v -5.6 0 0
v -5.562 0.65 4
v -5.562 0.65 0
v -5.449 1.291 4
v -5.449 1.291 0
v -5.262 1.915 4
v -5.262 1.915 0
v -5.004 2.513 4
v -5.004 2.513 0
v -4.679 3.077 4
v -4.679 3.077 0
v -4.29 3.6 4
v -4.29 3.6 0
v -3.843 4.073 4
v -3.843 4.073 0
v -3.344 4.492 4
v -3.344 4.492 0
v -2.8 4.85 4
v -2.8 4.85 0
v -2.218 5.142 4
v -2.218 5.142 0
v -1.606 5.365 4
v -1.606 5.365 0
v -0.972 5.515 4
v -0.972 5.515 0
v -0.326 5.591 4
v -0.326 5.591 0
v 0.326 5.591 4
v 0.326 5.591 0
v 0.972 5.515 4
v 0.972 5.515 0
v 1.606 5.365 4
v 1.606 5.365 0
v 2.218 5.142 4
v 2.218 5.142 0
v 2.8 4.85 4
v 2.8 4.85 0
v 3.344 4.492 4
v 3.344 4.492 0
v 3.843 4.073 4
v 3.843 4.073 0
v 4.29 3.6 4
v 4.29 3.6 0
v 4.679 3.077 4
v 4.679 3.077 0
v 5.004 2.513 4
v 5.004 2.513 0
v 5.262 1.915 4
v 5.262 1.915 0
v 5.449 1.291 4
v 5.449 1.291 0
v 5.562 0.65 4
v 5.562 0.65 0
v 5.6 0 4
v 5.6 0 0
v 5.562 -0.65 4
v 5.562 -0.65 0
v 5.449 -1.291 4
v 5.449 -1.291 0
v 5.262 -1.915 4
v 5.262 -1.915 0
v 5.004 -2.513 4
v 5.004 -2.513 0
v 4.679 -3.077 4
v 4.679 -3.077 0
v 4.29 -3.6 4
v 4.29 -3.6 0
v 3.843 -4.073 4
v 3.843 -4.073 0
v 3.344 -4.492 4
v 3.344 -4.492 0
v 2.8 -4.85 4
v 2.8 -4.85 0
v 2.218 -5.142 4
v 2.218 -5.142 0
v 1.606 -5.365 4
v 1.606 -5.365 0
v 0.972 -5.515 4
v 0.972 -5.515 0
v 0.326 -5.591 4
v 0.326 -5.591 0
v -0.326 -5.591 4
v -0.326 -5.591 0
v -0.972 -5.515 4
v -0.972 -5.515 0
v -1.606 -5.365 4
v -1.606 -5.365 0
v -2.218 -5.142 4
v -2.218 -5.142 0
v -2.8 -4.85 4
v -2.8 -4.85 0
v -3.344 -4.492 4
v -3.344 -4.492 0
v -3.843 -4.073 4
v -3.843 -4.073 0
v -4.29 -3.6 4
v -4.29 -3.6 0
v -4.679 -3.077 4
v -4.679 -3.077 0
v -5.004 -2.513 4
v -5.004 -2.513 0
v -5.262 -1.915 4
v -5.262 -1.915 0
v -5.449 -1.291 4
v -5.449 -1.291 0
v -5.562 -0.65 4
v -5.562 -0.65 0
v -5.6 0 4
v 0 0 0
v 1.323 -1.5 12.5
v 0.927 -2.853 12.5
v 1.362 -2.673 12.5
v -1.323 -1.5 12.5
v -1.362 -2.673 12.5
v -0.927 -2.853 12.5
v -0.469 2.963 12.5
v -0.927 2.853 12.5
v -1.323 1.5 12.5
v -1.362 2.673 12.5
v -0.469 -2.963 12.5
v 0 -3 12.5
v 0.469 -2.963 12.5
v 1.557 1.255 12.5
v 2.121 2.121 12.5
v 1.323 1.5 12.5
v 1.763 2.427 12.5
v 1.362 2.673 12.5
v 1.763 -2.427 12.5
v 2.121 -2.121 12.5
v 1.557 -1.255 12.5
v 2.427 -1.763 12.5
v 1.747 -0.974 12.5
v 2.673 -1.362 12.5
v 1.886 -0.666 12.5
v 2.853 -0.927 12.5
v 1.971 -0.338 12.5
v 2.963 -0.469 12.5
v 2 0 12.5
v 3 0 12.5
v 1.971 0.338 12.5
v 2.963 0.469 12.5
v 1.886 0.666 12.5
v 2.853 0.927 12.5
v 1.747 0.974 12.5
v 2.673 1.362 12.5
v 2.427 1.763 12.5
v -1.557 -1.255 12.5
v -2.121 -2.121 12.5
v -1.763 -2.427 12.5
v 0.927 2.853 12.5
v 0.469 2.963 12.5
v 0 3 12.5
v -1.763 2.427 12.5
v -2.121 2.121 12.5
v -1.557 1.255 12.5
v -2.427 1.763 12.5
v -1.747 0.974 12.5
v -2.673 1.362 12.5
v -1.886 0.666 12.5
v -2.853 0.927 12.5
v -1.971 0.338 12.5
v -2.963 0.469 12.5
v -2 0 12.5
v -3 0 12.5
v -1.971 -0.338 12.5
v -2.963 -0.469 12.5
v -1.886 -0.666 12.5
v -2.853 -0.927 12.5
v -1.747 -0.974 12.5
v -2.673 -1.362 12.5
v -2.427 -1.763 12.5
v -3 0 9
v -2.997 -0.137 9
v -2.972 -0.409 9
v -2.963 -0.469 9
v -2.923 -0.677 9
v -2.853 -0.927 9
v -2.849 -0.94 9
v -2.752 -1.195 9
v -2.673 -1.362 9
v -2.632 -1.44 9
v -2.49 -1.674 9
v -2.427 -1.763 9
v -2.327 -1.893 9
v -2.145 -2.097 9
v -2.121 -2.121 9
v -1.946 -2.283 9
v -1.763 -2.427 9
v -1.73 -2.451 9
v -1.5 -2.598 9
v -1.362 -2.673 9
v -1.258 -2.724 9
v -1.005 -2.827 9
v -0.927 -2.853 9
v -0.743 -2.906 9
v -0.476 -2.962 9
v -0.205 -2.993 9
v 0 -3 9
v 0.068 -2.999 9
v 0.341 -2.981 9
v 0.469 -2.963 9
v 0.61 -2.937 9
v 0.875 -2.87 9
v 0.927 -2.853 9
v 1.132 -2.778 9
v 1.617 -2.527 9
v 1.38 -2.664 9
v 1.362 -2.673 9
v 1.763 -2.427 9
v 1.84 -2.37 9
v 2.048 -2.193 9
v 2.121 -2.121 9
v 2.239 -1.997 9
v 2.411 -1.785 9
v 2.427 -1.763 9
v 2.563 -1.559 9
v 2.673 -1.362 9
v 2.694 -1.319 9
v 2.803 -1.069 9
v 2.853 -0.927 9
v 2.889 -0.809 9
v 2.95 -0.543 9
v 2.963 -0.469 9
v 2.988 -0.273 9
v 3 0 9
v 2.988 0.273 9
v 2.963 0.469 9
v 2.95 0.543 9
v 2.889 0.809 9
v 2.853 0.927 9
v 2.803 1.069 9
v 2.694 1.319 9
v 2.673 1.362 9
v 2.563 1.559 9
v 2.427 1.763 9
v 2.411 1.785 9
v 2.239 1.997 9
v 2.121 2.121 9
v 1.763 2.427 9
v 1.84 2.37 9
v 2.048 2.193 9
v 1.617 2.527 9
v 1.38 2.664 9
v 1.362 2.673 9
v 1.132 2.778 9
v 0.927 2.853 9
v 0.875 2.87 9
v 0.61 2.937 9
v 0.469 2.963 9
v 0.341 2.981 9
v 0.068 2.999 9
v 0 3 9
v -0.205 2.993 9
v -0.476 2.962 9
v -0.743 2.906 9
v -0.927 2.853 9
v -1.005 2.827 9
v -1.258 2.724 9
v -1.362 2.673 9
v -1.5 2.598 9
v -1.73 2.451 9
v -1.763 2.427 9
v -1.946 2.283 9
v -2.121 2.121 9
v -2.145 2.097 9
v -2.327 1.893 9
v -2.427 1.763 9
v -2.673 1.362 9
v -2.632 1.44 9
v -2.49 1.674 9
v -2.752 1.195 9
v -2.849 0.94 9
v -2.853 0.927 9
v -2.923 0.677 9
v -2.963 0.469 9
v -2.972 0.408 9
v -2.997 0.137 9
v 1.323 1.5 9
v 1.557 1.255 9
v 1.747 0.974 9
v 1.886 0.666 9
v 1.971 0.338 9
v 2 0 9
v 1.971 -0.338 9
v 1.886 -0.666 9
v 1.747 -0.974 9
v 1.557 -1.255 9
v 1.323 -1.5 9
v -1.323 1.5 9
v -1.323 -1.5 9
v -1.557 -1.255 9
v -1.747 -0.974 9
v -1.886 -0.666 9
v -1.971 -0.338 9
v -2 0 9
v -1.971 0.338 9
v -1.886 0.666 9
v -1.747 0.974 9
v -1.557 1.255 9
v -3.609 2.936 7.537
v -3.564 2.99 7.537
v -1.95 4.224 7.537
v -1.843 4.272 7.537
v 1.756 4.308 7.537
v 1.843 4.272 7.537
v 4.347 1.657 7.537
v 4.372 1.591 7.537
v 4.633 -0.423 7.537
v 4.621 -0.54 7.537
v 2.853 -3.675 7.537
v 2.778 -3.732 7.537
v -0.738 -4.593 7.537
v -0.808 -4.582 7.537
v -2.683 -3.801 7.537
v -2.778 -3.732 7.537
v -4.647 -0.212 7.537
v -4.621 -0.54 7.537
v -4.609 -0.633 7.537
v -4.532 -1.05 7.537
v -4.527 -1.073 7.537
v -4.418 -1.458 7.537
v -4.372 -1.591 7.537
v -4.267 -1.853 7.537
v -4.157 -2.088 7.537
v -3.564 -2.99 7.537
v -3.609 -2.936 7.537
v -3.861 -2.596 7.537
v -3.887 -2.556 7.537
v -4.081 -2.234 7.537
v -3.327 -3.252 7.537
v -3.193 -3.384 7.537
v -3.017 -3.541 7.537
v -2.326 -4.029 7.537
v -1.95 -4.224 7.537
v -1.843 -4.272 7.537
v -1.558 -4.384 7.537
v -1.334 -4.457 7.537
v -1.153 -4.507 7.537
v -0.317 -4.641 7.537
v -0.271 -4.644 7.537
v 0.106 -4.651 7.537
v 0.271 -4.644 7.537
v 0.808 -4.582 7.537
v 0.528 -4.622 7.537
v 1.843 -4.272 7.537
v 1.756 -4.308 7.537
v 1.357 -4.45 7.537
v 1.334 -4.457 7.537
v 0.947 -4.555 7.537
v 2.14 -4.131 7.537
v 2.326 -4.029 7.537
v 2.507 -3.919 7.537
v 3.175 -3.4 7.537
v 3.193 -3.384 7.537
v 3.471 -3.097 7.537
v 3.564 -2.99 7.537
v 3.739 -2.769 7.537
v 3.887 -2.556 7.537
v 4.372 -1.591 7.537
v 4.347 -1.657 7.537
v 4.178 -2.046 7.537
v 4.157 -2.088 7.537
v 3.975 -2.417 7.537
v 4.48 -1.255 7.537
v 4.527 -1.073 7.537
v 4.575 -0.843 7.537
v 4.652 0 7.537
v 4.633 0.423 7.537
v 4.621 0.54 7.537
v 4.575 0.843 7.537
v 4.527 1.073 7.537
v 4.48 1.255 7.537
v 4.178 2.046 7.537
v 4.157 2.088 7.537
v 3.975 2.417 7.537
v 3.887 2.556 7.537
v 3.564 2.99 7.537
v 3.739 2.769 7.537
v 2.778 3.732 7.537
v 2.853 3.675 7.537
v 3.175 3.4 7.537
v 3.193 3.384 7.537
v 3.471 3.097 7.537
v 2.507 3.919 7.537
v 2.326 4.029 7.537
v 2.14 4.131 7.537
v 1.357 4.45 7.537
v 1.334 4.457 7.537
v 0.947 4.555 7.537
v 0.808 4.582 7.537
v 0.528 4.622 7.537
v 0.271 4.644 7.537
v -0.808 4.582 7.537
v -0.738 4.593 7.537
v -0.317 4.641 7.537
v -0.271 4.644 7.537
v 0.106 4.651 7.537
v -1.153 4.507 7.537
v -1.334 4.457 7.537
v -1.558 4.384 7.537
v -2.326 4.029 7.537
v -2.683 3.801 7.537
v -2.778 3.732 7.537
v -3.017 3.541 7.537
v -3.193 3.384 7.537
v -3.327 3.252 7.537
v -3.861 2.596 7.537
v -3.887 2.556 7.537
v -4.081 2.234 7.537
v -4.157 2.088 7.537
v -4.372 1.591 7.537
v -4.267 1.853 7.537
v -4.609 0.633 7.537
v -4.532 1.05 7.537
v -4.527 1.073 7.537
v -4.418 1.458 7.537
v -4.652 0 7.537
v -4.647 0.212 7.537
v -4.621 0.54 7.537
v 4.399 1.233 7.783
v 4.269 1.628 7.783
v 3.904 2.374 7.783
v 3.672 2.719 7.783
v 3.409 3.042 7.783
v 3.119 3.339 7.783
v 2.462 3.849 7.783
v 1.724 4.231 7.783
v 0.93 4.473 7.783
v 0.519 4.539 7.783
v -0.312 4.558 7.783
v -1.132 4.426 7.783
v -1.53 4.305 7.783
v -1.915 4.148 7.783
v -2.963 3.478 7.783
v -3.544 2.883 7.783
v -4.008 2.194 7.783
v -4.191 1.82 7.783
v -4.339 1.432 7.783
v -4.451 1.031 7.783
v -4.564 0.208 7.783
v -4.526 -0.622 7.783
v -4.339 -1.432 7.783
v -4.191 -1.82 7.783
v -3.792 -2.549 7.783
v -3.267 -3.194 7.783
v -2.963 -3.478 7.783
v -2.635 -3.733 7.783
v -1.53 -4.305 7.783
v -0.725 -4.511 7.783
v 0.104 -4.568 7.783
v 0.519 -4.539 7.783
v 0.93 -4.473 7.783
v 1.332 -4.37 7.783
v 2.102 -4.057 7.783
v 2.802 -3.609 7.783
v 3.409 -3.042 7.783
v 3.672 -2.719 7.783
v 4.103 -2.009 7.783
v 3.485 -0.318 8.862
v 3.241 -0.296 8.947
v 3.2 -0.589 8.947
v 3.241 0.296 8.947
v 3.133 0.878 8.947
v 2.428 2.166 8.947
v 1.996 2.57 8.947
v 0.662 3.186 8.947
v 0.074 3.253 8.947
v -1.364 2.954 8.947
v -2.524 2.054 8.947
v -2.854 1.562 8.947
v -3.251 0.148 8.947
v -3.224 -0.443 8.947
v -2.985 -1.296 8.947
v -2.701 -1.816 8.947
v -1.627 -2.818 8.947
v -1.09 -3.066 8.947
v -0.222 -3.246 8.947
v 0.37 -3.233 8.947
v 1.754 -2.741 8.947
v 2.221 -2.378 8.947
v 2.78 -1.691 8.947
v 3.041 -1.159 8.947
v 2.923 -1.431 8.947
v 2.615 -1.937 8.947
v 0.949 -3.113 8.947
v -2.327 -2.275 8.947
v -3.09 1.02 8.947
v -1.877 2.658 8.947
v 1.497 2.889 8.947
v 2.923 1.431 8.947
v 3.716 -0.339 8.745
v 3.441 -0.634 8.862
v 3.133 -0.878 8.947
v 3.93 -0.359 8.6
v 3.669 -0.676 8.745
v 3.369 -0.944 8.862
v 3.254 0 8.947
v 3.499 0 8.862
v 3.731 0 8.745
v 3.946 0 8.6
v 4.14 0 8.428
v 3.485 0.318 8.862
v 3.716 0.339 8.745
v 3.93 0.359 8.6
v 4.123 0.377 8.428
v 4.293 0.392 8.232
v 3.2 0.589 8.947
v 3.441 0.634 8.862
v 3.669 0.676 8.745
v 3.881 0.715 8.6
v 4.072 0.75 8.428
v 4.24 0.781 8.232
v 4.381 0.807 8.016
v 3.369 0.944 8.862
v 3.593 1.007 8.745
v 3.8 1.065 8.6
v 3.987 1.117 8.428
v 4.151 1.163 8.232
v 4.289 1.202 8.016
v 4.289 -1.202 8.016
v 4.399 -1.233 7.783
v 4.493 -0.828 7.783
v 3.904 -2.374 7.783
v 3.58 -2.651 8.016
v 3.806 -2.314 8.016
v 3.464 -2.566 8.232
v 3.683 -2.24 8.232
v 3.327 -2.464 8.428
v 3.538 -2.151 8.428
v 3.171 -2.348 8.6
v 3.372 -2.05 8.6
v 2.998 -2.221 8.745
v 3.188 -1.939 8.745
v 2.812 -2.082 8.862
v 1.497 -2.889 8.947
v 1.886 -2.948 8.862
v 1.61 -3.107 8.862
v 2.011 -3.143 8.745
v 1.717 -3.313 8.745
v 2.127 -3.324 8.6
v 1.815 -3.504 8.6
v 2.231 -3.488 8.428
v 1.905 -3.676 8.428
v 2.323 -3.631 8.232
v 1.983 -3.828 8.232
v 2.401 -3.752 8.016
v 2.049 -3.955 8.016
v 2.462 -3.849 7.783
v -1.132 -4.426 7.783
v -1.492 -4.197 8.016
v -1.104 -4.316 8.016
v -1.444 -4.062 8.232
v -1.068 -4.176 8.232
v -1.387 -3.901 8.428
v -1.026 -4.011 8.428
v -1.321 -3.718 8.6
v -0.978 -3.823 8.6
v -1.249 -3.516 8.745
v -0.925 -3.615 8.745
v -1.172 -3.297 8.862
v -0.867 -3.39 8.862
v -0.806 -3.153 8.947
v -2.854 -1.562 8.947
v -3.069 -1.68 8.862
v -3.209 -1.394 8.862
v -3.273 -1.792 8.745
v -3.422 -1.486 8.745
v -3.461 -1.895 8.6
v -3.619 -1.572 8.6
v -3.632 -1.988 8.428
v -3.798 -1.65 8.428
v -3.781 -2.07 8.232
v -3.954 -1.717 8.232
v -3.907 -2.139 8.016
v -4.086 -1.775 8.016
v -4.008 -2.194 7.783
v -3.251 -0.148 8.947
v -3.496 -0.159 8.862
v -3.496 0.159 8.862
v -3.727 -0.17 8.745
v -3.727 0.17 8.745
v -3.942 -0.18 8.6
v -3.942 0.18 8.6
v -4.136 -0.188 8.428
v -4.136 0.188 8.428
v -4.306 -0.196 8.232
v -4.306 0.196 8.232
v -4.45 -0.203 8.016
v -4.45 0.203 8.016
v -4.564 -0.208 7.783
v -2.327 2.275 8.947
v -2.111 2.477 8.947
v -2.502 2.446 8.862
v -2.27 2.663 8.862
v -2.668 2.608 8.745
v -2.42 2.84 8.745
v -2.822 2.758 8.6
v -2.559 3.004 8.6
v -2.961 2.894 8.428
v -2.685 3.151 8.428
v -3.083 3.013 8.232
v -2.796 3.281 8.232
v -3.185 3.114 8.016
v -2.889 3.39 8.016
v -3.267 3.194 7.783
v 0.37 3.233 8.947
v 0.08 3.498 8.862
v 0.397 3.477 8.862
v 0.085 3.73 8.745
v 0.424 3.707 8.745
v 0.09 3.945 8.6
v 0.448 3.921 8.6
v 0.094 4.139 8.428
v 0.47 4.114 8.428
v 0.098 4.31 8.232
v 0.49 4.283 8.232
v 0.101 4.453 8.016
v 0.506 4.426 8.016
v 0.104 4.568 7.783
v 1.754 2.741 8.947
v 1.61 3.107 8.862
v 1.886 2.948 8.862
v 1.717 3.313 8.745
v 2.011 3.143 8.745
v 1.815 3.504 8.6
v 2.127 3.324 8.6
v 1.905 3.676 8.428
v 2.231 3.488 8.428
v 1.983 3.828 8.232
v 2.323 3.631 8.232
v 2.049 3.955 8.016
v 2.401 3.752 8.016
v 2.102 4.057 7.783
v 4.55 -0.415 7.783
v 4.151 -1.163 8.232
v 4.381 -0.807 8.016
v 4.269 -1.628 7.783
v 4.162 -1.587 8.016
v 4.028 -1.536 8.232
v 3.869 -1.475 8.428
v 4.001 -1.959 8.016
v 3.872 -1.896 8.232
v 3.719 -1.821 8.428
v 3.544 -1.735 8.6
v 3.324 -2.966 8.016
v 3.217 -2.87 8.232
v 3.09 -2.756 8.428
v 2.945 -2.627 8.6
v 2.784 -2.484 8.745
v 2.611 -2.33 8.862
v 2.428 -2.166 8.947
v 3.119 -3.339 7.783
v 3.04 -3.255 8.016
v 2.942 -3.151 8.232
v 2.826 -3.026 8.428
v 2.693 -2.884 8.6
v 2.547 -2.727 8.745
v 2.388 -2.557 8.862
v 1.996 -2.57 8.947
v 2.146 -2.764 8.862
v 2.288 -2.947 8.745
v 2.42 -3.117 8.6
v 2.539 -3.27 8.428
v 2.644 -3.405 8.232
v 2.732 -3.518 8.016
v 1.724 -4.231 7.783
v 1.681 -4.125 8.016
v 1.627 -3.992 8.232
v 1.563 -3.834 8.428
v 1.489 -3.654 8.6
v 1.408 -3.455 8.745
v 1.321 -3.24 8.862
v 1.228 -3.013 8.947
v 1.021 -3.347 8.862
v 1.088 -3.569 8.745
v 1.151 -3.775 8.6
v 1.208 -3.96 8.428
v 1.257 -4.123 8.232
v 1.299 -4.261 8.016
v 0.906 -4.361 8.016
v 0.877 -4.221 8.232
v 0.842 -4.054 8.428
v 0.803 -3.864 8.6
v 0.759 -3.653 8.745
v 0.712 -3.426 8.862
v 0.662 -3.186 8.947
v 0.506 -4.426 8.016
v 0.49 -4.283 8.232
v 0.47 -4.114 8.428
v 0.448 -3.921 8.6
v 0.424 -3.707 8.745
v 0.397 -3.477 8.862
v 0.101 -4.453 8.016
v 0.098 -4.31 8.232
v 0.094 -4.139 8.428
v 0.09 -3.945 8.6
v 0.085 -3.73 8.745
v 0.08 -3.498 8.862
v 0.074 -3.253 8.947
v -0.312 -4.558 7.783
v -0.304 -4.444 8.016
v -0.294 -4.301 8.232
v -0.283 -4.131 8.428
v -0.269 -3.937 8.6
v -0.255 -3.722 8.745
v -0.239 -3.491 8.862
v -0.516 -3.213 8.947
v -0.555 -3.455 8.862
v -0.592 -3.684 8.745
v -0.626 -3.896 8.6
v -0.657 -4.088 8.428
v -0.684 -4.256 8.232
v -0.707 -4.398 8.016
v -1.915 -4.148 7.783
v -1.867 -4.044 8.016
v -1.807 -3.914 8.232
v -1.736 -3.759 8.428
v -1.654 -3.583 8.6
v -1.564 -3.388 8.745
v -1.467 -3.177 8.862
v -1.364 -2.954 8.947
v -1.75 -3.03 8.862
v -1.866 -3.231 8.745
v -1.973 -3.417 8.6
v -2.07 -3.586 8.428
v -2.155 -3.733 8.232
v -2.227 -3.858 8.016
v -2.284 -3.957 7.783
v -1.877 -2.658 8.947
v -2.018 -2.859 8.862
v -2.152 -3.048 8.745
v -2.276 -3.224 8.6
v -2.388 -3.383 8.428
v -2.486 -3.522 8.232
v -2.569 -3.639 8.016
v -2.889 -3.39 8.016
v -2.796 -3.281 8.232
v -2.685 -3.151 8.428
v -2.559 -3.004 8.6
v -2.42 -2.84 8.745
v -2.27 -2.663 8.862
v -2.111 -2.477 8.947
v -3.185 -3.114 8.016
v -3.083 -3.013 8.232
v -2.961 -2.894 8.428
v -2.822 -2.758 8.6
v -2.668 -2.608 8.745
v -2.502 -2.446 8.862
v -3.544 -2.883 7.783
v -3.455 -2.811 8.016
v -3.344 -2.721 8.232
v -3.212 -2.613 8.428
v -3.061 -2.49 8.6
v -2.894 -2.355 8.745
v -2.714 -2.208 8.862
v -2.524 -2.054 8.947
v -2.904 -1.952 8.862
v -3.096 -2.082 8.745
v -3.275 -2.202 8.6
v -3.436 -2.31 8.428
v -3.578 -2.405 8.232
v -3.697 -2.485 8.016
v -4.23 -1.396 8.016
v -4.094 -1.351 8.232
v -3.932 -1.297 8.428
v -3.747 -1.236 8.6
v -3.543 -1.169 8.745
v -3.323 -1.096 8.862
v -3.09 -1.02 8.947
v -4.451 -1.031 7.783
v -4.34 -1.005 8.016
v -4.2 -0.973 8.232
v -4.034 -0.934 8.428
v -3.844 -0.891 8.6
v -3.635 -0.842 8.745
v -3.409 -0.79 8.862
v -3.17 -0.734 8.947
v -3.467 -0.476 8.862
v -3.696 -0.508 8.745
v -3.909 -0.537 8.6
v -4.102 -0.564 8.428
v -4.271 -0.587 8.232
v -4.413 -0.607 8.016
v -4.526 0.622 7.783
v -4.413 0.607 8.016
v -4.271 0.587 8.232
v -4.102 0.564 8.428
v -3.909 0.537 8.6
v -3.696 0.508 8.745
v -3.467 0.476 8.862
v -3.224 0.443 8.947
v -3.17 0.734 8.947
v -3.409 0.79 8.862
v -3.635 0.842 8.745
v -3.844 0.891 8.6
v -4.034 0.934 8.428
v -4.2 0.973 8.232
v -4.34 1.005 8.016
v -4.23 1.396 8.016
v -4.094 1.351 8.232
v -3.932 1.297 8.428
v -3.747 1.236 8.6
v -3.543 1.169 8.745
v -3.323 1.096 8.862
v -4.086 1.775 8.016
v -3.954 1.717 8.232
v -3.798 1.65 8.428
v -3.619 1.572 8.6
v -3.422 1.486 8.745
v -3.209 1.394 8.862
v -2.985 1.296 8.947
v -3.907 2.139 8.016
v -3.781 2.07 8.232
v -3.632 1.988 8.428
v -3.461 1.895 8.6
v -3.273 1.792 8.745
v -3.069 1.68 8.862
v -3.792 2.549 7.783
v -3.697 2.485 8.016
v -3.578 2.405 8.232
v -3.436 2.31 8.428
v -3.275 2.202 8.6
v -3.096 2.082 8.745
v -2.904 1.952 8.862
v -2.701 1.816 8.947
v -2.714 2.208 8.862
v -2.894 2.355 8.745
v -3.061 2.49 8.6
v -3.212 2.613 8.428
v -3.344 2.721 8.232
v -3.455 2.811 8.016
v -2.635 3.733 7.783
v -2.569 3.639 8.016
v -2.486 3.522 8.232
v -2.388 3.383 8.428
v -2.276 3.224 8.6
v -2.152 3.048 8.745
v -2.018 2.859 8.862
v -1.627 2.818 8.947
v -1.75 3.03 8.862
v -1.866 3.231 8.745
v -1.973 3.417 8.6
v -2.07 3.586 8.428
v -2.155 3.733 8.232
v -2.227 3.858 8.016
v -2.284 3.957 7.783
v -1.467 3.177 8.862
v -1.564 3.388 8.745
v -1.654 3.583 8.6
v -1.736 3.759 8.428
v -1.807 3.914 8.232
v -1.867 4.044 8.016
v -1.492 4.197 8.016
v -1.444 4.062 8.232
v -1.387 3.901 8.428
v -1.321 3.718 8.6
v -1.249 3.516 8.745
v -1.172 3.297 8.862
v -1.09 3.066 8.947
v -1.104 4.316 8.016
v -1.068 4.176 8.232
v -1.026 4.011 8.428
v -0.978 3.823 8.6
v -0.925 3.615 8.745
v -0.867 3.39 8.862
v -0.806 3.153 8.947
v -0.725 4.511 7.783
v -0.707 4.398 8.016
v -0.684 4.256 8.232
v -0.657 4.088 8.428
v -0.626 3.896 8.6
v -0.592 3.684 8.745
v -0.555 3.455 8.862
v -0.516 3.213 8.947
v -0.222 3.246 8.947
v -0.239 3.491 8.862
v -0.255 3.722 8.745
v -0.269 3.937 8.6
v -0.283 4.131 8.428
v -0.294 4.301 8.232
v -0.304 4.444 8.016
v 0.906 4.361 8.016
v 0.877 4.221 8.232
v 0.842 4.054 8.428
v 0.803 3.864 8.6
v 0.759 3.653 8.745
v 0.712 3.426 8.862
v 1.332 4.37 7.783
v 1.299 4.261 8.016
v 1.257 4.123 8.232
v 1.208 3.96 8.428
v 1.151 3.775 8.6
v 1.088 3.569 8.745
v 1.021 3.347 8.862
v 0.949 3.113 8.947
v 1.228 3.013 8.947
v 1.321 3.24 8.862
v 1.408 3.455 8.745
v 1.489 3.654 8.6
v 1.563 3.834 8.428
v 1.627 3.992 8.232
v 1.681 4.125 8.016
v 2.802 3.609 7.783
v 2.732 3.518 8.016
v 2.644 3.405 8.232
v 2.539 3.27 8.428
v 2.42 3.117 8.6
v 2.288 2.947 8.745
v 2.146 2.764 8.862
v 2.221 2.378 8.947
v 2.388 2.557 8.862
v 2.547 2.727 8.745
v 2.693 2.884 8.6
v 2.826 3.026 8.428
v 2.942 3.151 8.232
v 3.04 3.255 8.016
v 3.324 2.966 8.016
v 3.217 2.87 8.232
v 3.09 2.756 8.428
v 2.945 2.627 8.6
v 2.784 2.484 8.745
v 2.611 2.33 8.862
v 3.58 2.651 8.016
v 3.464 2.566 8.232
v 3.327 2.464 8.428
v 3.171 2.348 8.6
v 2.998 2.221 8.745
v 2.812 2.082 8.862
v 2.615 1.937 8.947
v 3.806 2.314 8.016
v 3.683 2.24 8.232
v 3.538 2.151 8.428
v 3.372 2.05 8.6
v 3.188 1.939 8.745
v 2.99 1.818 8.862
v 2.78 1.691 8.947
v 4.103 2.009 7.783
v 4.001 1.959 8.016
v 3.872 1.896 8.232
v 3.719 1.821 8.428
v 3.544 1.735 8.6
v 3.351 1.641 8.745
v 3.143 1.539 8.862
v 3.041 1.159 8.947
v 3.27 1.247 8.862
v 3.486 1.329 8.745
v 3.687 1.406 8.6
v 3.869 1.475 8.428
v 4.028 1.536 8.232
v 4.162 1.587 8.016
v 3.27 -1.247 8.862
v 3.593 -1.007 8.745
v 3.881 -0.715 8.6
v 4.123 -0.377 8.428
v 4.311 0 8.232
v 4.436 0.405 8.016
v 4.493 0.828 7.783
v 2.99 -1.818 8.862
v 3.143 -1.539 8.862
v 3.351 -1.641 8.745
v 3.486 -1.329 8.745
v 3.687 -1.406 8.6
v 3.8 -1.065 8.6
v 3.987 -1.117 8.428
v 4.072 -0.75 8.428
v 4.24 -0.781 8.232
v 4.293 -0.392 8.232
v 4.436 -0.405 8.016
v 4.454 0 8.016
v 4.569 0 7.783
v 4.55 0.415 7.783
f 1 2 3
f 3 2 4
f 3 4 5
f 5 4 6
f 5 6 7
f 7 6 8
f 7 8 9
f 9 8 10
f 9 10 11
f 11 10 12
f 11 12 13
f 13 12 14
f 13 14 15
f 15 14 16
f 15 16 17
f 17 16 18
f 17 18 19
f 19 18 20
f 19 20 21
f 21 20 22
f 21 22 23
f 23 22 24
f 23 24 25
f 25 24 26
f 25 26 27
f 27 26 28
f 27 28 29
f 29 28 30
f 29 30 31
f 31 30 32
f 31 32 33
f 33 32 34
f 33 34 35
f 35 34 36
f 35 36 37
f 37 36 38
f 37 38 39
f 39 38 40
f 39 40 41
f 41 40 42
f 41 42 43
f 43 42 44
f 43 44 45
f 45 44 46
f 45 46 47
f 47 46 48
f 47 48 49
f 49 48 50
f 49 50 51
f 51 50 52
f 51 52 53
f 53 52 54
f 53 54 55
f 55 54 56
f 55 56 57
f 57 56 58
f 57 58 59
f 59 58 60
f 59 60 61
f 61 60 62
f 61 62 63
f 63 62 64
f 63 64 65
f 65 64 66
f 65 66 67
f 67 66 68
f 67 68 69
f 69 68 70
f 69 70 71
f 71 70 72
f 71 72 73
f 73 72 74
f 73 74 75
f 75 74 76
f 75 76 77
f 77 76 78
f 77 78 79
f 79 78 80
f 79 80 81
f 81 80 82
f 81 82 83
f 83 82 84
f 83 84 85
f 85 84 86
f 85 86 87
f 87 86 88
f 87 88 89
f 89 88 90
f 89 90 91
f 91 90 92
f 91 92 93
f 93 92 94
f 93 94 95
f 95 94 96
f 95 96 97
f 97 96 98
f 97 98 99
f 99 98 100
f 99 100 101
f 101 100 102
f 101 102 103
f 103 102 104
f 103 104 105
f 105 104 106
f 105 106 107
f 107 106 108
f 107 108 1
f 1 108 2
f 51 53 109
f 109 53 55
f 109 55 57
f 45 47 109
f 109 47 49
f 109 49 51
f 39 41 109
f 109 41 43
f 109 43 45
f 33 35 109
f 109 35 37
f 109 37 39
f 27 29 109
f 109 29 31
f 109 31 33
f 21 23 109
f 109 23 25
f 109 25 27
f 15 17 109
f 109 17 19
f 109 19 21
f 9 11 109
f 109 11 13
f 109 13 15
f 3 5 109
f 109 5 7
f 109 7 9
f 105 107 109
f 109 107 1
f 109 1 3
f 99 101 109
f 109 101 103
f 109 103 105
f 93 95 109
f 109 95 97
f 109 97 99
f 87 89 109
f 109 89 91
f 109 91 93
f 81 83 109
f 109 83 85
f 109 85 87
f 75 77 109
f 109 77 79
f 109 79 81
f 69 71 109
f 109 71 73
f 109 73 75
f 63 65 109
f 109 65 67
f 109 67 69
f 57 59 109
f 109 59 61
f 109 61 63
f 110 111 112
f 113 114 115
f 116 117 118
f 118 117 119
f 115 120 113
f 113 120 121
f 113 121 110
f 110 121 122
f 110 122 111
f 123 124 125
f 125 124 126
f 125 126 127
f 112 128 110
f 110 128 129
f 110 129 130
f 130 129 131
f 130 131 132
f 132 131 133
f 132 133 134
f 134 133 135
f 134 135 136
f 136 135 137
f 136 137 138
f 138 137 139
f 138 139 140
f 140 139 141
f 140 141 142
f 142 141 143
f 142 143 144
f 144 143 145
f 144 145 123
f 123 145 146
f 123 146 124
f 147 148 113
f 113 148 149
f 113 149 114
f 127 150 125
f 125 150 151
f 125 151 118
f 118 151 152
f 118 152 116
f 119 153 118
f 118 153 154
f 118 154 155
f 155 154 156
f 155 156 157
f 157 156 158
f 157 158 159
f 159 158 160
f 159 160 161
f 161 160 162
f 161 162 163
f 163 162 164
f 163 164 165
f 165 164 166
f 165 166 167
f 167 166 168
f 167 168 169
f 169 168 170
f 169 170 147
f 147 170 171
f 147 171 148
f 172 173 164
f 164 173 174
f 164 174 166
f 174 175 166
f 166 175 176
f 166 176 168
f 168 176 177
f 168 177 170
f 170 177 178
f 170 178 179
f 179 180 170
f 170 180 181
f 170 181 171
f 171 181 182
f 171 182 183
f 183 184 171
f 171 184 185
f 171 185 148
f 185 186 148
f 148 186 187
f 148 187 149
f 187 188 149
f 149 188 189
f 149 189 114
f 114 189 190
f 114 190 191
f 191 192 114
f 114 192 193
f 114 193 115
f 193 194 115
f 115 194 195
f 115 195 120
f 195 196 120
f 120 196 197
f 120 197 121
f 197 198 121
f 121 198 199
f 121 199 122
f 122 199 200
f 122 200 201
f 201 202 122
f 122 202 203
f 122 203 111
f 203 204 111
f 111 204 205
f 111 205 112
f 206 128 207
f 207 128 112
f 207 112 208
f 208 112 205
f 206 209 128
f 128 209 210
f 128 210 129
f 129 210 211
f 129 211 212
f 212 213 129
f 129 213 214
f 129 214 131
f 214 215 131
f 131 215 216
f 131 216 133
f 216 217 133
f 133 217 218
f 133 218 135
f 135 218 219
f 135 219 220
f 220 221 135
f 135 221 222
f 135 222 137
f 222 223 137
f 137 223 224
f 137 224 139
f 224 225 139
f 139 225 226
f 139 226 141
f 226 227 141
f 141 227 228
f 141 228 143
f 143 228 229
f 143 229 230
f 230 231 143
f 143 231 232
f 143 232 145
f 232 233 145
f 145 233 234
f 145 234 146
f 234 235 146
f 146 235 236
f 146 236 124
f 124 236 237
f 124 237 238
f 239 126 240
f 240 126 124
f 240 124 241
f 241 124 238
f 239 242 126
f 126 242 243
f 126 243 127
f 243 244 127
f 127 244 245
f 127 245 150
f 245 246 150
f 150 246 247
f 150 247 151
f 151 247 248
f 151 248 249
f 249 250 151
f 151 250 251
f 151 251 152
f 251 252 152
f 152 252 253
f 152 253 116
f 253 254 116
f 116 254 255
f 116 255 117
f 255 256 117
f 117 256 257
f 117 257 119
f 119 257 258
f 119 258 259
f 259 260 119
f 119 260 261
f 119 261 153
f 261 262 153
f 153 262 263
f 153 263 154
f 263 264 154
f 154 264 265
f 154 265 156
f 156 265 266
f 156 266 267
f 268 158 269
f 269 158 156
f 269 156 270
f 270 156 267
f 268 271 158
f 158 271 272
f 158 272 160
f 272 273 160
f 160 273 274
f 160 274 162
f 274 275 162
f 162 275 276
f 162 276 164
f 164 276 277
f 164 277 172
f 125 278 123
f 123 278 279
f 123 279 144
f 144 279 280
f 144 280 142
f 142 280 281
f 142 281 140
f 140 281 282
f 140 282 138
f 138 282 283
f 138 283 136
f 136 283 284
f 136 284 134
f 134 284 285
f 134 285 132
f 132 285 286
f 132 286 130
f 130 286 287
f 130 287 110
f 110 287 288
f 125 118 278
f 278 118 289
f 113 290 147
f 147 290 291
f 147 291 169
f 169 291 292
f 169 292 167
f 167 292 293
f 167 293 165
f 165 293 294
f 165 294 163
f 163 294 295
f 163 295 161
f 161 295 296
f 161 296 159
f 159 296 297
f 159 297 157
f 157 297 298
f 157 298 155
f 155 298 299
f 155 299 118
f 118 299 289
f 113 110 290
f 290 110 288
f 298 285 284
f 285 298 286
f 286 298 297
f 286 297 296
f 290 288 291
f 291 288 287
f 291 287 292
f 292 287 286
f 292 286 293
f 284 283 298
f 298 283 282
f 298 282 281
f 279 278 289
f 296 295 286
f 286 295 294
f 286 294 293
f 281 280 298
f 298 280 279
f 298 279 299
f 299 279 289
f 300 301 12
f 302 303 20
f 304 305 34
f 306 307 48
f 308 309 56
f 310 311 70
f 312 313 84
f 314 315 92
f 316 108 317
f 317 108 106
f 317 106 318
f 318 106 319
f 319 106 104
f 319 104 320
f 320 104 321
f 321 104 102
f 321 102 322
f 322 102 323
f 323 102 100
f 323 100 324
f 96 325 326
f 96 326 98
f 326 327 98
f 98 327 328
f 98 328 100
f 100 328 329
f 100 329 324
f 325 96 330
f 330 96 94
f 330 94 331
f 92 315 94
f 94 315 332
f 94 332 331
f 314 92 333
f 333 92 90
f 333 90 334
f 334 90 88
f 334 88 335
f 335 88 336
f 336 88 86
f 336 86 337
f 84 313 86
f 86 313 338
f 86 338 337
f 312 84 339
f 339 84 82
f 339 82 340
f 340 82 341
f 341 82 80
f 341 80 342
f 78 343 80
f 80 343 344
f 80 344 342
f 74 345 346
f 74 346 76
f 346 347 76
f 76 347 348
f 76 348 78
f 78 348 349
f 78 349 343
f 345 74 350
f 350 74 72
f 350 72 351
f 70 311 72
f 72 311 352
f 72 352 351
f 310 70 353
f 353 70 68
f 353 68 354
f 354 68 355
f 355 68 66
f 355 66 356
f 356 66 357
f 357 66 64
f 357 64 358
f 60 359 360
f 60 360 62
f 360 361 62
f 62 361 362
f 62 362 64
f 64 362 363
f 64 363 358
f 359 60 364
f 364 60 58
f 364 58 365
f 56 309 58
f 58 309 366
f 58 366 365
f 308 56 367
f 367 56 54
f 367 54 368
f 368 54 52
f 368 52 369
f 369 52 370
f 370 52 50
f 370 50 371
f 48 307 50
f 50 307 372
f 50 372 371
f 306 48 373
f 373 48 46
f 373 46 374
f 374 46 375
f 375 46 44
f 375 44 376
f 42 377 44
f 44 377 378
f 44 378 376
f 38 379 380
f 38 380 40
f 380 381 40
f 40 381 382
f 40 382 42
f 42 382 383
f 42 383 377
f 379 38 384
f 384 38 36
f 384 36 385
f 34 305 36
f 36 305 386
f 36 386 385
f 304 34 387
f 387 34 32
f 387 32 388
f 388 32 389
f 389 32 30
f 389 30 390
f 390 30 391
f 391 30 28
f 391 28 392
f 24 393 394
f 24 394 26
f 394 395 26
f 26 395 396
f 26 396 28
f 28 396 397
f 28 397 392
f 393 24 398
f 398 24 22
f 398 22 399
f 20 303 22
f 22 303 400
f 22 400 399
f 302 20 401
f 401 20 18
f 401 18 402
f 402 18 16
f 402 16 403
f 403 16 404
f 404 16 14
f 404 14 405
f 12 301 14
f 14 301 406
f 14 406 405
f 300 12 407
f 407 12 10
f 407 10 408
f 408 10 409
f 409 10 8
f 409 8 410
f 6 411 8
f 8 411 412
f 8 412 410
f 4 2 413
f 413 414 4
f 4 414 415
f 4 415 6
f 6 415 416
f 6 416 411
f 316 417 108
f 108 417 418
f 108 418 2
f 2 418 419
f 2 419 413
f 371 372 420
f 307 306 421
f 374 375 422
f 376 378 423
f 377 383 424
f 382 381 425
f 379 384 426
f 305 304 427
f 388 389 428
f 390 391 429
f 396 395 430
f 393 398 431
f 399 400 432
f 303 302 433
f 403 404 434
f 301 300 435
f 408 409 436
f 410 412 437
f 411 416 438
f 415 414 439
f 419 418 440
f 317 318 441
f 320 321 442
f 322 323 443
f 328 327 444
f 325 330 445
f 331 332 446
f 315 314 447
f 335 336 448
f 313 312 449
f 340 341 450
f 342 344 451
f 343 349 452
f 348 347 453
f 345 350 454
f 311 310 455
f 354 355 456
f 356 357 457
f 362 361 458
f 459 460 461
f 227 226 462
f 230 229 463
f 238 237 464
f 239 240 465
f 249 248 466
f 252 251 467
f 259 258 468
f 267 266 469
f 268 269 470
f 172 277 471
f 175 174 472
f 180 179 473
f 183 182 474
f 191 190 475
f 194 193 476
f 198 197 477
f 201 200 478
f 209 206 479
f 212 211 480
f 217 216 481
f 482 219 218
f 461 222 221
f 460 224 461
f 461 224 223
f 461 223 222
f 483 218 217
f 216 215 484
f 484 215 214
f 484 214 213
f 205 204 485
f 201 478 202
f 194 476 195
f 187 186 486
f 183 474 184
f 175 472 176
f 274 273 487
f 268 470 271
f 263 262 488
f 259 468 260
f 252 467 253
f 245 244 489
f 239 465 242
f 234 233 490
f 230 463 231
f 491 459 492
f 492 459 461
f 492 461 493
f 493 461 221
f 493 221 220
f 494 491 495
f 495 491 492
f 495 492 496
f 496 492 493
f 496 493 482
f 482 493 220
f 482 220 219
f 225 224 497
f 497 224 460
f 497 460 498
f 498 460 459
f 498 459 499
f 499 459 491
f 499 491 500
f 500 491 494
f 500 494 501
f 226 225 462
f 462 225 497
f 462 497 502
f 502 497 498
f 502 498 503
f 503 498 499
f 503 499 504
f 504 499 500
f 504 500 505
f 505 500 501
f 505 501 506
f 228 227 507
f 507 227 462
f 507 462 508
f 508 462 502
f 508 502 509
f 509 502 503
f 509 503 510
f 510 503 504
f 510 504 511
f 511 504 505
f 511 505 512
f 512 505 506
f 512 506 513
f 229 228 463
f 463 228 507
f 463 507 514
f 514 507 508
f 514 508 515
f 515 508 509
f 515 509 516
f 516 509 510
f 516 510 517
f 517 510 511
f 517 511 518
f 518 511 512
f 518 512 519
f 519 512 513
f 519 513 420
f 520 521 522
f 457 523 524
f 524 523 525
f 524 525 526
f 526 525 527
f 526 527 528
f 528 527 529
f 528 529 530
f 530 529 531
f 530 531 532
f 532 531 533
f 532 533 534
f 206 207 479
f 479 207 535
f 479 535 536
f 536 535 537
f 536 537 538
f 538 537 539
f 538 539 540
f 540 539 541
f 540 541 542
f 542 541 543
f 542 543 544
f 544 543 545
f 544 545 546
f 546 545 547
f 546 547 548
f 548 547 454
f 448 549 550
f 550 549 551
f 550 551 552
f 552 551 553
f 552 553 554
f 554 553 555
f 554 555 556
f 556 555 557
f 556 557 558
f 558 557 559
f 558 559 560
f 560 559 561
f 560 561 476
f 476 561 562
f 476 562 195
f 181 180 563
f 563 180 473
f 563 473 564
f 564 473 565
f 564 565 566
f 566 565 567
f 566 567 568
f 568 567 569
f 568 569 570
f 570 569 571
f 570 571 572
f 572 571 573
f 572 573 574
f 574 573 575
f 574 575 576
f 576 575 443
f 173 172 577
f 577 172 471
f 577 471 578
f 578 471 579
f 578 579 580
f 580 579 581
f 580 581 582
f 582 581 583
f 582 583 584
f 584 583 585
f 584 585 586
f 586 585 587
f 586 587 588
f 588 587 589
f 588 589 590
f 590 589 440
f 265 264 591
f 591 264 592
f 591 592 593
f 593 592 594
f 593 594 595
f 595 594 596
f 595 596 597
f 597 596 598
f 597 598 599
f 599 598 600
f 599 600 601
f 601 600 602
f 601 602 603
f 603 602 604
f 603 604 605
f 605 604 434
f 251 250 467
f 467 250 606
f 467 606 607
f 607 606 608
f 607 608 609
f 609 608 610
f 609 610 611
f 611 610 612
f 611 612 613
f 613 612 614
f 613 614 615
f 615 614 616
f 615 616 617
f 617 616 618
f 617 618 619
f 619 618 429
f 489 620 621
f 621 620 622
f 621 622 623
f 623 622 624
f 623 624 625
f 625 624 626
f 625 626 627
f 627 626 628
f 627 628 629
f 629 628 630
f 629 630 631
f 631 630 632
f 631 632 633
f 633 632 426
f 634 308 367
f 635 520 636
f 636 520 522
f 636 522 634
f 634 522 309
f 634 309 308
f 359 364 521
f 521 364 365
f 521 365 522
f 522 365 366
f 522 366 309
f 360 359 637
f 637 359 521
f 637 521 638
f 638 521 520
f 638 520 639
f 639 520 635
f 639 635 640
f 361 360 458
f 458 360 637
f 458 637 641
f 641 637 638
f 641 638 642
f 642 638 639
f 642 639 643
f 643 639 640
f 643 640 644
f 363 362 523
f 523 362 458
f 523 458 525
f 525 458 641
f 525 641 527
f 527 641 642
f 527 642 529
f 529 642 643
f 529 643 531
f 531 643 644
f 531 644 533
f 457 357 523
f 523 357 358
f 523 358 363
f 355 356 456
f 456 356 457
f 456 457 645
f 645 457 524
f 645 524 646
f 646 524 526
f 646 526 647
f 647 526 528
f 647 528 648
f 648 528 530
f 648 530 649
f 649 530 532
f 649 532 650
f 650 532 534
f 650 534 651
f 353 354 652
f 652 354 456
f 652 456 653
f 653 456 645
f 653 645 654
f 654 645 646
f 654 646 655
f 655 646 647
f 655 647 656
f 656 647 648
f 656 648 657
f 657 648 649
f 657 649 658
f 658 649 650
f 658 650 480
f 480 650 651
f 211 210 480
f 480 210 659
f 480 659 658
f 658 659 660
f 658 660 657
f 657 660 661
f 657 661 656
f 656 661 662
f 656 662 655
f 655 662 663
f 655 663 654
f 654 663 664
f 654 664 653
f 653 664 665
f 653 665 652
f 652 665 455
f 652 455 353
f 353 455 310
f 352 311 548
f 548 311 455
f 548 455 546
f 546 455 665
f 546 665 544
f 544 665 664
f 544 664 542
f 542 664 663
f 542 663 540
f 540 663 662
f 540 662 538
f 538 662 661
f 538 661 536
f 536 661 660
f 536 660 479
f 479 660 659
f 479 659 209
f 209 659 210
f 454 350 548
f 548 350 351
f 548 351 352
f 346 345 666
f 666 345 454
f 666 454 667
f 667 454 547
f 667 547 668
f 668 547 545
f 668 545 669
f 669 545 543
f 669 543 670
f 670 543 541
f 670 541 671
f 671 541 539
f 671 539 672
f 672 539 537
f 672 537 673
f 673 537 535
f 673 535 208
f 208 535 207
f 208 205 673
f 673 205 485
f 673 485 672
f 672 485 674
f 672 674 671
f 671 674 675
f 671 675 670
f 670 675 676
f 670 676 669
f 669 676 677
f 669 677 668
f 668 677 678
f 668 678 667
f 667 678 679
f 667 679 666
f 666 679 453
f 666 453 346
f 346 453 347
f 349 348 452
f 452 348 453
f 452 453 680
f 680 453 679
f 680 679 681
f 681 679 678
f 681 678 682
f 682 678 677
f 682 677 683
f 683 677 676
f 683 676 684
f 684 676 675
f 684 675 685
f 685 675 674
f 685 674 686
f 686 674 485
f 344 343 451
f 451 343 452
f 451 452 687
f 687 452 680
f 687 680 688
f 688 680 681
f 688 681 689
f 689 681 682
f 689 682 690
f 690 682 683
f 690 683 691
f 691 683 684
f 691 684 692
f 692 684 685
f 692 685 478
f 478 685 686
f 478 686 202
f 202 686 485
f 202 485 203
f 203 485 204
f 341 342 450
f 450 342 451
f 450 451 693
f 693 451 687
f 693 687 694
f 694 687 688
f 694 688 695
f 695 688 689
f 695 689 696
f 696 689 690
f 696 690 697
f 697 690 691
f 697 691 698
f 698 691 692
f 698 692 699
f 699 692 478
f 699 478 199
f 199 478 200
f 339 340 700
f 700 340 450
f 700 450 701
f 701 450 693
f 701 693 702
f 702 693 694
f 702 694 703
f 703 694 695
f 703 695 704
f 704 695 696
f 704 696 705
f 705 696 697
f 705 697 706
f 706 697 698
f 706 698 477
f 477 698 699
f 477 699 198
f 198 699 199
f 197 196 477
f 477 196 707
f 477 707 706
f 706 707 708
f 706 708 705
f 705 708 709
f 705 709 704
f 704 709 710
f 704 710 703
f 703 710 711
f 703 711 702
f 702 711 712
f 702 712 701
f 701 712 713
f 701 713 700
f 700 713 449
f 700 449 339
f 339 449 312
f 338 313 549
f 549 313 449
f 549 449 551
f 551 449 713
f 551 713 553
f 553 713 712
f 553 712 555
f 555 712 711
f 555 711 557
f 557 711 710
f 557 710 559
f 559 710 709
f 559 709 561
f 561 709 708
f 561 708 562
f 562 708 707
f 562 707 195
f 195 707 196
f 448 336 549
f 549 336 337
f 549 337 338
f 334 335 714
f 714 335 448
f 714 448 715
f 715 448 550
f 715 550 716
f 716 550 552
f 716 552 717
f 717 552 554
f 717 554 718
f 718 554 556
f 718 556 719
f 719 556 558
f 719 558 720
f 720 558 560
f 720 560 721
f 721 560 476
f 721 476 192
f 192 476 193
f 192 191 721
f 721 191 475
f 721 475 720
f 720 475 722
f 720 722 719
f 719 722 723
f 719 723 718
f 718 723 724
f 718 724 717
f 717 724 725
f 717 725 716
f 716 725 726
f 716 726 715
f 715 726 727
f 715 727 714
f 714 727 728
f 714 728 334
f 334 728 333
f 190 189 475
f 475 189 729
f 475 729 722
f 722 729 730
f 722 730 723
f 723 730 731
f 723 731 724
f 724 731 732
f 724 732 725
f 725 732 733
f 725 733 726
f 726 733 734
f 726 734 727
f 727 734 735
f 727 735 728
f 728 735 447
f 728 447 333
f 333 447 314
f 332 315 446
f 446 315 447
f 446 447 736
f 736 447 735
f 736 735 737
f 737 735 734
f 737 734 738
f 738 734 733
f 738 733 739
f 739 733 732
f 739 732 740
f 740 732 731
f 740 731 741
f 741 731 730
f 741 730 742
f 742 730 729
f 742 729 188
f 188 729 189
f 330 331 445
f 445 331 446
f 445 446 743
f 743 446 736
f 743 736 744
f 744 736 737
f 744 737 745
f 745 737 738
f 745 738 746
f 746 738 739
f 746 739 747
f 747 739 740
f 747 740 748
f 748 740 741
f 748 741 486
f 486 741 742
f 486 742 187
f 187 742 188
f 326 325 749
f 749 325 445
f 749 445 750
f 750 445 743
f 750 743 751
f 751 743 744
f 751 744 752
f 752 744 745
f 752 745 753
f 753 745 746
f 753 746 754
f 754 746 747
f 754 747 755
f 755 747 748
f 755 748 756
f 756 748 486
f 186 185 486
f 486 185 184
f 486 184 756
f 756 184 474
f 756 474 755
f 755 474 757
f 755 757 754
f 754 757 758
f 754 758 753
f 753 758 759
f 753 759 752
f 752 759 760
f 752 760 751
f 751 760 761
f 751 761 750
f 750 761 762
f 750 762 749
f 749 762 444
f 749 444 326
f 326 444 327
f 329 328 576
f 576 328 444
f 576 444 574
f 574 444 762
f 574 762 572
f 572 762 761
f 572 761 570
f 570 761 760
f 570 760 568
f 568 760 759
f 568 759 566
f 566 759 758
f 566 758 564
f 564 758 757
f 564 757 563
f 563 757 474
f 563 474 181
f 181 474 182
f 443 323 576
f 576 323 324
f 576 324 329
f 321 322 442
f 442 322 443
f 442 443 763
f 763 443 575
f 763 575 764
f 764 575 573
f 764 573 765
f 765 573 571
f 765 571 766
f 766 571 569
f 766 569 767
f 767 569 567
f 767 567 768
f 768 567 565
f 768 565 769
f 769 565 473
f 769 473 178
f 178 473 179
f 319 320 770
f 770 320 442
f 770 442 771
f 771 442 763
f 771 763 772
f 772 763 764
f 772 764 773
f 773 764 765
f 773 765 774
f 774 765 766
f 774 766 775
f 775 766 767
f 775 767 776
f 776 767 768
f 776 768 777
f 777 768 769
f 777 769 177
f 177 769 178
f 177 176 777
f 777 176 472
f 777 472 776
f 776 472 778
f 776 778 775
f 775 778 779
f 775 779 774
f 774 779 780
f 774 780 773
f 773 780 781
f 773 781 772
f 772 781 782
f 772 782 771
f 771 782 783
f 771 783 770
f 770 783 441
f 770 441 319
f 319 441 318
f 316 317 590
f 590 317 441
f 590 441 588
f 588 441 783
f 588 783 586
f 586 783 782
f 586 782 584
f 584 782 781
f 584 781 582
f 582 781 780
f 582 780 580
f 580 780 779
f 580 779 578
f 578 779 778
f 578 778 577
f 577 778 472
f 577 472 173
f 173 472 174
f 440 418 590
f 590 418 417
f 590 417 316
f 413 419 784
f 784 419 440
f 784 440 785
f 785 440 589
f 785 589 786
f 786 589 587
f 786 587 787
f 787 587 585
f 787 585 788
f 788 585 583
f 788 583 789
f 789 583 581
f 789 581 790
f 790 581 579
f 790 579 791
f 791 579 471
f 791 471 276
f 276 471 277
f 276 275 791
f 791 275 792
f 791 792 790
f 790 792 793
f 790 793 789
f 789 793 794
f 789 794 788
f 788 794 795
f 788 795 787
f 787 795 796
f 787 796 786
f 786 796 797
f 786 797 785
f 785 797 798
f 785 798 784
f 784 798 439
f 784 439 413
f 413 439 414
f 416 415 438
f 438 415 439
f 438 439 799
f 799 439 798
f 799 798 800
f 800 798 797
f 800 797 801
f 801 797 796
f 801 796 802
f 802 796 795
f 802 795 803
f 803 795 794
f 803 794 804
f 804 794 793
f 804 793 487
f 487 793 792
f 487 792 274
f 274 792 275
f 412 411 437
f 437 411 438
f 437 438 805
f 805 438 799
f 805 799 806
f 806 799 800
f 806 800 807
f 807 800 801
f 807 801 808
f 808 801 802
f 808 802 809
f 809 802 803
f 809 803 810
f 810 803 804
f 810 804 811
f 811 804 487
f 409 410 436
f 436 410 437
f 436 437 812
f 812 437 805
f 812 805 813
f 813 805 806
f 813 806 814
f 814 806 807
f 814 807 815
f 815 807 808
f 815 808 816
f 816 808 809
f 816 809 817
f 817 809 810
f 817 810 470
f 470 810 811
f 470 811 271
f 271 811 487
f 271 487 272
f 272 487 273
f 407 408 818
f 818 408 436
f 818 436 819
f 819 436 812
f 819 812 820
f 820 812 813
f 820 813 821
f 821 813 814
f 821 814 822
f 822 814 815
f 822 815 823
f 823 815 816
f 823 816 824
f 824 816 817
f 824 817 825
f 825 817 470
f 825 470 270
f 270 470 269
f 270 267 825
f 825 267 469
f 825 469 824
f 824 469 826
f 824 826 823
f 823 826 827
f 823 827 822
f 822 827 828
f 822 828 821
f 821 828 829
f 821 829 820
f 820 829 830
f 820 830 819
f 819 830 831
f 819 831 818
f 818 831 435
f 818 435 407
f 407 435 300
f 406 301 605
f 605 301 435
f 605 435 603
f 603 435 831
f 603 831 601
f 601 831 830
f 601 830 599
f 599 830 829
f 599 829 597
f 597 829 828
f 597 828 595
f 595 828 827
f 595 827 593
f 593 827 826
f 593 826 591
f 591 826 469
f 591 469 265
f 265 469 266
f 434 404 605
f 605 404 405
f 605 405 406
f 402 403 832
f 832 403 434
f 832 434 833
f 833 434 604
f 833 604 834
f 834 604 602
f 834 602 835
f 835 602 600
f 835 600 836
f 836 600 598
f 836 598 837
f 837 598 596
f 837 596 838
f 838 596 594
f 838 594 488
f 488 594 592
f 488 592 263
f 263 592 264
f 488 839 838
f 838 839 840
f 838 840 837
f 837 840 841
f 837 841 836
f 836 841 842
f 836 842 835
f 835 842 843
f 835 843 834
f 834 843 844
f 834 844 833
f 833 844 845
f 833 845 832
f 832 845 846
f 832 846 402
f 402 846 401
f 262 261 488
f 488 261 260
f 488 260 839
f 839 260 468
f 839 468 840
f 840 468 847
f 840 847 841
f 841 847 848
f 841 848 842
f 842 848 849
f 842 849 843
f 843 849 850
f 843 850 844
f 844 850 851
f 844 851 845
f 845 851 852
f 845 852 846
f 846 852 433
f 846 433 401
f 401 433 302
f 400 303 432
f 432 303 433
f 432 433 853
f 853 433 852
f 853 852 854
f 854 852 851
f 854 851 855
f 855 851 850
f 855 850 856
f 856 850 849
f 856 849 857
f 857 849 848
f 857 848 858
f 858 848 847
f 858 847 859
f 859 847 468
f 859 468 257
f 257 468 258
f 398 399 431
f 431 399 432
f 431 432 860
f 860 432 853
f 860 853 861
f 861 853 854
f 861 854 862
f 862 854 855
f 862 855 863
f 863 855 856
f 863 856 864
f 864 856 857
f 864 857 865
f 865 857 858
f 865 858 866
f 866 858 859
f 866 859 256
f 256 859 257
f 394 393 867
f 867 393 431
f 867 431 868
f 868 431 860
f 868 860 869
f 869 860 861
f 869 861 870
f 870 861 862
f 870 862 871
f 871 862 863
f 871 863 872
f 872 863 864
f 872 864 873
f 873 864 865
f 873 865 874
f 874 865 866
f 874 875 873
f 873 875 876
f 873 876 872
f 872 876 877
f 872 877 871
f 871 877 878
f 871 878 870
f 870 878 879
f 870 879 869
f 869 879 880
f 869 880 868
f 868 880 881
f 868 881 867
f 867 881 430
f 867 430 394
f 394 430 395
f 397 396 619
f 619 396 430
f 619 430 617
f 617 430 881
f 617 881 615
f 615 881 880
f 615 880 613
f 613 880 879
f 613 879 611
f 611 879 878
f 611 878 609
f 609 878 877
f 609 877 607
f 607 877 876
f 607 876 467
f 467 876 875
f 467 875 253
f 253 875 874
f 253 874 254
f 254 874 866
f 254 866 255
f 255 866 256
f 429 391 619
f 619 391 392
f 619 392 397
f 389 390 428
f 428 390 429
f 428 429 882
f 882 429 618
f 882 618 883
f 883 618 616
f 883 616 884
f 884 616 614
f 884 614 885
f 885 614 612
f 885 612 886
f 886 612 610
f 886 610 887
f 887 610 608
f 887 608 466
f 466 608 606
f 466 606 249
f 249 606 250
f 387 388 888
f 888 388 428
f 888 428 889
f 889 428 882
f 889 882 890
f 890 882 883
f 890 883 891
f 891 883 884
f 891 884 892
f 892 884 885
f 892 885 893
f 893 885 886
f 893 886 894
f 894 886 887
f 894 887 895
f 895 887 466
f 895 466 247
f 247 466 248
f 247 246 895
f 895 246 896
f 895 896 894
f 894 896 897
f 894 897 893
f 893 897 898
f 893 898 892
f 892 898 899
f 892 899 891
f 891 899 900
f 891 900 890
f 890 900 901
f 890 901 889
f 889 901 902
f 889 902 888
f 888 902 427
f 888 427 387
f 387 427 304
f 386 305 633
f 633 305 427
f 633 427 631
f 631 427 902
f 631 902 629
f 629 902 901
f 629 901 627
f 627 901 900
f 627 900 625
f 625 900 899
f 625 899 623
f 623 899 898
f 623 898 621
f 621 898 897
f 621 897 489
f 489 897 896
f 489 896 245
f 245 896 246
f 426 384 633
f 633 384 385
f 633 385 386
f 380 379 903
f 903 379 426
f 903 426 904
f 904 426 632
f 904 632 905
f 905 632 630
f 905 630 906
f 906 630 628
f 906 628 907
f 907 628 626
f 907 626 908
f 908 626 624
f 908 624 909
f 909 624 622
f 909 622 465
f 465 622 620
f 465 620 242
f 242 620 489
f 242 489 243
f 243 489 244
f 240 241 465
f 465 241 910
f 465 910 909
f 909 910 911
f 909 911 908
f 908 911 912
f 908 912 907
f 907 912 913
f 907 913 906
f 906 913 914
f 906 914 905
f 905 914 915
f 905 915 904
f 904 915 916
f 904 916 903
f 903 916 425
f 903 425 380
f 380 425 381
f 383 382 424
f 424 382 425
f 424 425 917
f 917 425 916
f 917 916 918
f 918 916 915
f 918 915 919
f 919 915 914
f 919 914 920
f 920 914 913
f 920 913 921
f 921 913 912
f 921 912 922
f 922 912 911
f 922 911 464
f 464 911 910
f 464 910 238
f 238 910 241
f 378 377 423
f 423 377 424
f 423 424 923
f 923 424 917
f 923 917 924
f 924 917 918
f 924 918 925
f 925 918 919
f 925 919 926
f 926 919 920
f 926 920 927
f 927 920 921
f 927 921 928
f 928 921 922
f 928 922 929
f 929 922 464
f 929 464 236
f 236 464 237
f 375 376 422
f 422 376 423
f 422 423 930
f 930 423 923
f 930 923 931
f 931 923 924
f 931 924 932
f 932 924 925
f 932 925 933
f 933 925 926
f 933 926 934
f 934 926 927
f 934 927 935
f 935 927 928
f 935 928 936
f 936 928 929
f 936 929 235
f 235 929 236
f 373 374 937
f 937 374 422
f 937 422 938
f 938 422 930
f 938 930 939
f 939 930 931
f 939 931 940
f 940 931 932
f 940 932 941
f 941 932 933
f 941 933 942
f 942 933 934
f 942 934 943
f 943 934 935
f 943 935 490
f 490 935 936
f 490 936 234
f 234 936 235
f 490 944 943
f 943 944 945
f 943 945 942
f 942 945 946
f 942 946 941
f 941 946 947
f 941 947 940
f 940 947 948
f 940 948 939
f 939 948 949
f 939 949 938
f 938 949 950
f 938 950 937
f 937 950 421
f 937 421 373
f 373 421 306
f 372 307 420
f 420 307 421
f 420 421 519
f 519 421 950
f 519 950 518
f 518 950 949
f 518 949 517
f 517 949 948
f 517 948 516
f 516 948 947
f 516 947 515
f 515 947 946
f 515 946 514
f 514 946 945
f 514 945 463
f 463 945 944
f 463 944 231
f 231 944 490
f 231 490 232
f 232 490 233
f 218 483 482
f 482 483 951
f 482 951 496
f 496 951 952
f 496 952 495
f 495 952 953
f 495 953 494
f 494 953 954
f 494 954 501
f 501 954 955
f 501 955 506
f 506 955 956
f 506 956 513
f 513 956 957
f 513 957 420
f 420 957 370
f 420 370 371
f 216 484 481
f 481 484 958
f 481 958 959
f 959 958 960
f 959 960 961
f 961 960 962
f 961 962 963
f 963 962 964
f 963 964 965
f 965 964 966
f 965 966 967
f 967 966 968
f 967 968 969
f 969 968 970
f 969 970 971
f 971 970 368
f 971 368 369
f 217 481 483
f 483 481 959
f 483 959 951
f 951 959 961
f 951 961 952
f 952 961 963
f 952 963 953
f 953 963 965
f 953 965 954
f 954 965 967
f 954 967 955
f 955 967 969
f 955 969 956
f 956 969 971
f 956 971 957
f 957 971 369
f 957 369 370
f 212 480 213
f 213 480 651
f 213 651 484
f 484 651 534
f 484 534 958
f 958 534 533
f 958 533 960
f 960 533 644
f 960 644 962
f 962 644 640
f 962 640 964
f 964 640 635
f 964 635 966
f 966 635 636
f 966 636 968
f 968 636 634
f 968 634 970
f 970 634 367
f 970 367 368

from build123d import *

# Parameters (mm, degrees)
SKETCH1_R           = 5.6
BOSS_EXTRUDE1_DEPTH = 9
SKETCH2_R           = 3
BOSS_EXTRUDE2_DEPTH = 3.5
CHAMFER1_SIZE       = 5
CHAMFER1_SIZE2      = 1.339745962


with BuildPart() as part:
    # Sketch1 → Boss-Extrude1 (new body)
    with BuildSketch(Plane.XY):
        Circle(SKETCH1_R)
    extrude(amount=BOSS_EXTRUDE1_DEPTH)

    # Sketch2 → Boss-Extrude2 (add)
    with BuildSketch(Plane.XY.offset(9)):
        Circle(SKETCH2_R)
        with BuildLine():
            Line((-1.322875656, -1.5), (1.322875656, -1.5))
            ThreePointArc((1.322875656, -1.5), (2, 0), (1.322875656, 1.5))
            Line((1.322875656, 1.5), (-1.322875656, 1.5))
            ThreePointArc((-1.322875656, 1.5), (-2, 0), (-1.322875656, -1.5))
        make_face(mode=Mode.SUBTRACT)
    extrude(amount=BOSS_EXTRUDE2_DEPTH)

    # Chamfer1
    chamfer1_edges = [part.edges().sort_by_distance(p)[0] for p in [
        (-5.6, 0, 9),
    ]]
    chamfer1_side = [part.faces().sort_by_distance(p)[0] for p in [
        (-5.6, 0, 4.5),
    ]]
    chamfer(chamfer1_edges, length=CHAMFER1_SIZE, length2=CHAMFER1_SIZE2, reference=chamfer1_side[0])

    # Fillet1: read off the stored shape, not the designer's step
    # Fillet1 outline → Fillet1 (revolve, cut)
    with BuildSketch(Plane.XZ):
        with BuildLine():
            Line((4.652186603, 7.537287752), (4.652186603, 9))
            Line((4.652186603, 9), (3, 9))
            ThreePointArc((3, 9), (4.04607373, 8.517119759), (4.652186603, 7.537287752))
        make_face()
    revolve(axis=Axis((0, 0, 0), (0, 0, 1)), mode=Mode.SUBTRACT)


solid = part.part
